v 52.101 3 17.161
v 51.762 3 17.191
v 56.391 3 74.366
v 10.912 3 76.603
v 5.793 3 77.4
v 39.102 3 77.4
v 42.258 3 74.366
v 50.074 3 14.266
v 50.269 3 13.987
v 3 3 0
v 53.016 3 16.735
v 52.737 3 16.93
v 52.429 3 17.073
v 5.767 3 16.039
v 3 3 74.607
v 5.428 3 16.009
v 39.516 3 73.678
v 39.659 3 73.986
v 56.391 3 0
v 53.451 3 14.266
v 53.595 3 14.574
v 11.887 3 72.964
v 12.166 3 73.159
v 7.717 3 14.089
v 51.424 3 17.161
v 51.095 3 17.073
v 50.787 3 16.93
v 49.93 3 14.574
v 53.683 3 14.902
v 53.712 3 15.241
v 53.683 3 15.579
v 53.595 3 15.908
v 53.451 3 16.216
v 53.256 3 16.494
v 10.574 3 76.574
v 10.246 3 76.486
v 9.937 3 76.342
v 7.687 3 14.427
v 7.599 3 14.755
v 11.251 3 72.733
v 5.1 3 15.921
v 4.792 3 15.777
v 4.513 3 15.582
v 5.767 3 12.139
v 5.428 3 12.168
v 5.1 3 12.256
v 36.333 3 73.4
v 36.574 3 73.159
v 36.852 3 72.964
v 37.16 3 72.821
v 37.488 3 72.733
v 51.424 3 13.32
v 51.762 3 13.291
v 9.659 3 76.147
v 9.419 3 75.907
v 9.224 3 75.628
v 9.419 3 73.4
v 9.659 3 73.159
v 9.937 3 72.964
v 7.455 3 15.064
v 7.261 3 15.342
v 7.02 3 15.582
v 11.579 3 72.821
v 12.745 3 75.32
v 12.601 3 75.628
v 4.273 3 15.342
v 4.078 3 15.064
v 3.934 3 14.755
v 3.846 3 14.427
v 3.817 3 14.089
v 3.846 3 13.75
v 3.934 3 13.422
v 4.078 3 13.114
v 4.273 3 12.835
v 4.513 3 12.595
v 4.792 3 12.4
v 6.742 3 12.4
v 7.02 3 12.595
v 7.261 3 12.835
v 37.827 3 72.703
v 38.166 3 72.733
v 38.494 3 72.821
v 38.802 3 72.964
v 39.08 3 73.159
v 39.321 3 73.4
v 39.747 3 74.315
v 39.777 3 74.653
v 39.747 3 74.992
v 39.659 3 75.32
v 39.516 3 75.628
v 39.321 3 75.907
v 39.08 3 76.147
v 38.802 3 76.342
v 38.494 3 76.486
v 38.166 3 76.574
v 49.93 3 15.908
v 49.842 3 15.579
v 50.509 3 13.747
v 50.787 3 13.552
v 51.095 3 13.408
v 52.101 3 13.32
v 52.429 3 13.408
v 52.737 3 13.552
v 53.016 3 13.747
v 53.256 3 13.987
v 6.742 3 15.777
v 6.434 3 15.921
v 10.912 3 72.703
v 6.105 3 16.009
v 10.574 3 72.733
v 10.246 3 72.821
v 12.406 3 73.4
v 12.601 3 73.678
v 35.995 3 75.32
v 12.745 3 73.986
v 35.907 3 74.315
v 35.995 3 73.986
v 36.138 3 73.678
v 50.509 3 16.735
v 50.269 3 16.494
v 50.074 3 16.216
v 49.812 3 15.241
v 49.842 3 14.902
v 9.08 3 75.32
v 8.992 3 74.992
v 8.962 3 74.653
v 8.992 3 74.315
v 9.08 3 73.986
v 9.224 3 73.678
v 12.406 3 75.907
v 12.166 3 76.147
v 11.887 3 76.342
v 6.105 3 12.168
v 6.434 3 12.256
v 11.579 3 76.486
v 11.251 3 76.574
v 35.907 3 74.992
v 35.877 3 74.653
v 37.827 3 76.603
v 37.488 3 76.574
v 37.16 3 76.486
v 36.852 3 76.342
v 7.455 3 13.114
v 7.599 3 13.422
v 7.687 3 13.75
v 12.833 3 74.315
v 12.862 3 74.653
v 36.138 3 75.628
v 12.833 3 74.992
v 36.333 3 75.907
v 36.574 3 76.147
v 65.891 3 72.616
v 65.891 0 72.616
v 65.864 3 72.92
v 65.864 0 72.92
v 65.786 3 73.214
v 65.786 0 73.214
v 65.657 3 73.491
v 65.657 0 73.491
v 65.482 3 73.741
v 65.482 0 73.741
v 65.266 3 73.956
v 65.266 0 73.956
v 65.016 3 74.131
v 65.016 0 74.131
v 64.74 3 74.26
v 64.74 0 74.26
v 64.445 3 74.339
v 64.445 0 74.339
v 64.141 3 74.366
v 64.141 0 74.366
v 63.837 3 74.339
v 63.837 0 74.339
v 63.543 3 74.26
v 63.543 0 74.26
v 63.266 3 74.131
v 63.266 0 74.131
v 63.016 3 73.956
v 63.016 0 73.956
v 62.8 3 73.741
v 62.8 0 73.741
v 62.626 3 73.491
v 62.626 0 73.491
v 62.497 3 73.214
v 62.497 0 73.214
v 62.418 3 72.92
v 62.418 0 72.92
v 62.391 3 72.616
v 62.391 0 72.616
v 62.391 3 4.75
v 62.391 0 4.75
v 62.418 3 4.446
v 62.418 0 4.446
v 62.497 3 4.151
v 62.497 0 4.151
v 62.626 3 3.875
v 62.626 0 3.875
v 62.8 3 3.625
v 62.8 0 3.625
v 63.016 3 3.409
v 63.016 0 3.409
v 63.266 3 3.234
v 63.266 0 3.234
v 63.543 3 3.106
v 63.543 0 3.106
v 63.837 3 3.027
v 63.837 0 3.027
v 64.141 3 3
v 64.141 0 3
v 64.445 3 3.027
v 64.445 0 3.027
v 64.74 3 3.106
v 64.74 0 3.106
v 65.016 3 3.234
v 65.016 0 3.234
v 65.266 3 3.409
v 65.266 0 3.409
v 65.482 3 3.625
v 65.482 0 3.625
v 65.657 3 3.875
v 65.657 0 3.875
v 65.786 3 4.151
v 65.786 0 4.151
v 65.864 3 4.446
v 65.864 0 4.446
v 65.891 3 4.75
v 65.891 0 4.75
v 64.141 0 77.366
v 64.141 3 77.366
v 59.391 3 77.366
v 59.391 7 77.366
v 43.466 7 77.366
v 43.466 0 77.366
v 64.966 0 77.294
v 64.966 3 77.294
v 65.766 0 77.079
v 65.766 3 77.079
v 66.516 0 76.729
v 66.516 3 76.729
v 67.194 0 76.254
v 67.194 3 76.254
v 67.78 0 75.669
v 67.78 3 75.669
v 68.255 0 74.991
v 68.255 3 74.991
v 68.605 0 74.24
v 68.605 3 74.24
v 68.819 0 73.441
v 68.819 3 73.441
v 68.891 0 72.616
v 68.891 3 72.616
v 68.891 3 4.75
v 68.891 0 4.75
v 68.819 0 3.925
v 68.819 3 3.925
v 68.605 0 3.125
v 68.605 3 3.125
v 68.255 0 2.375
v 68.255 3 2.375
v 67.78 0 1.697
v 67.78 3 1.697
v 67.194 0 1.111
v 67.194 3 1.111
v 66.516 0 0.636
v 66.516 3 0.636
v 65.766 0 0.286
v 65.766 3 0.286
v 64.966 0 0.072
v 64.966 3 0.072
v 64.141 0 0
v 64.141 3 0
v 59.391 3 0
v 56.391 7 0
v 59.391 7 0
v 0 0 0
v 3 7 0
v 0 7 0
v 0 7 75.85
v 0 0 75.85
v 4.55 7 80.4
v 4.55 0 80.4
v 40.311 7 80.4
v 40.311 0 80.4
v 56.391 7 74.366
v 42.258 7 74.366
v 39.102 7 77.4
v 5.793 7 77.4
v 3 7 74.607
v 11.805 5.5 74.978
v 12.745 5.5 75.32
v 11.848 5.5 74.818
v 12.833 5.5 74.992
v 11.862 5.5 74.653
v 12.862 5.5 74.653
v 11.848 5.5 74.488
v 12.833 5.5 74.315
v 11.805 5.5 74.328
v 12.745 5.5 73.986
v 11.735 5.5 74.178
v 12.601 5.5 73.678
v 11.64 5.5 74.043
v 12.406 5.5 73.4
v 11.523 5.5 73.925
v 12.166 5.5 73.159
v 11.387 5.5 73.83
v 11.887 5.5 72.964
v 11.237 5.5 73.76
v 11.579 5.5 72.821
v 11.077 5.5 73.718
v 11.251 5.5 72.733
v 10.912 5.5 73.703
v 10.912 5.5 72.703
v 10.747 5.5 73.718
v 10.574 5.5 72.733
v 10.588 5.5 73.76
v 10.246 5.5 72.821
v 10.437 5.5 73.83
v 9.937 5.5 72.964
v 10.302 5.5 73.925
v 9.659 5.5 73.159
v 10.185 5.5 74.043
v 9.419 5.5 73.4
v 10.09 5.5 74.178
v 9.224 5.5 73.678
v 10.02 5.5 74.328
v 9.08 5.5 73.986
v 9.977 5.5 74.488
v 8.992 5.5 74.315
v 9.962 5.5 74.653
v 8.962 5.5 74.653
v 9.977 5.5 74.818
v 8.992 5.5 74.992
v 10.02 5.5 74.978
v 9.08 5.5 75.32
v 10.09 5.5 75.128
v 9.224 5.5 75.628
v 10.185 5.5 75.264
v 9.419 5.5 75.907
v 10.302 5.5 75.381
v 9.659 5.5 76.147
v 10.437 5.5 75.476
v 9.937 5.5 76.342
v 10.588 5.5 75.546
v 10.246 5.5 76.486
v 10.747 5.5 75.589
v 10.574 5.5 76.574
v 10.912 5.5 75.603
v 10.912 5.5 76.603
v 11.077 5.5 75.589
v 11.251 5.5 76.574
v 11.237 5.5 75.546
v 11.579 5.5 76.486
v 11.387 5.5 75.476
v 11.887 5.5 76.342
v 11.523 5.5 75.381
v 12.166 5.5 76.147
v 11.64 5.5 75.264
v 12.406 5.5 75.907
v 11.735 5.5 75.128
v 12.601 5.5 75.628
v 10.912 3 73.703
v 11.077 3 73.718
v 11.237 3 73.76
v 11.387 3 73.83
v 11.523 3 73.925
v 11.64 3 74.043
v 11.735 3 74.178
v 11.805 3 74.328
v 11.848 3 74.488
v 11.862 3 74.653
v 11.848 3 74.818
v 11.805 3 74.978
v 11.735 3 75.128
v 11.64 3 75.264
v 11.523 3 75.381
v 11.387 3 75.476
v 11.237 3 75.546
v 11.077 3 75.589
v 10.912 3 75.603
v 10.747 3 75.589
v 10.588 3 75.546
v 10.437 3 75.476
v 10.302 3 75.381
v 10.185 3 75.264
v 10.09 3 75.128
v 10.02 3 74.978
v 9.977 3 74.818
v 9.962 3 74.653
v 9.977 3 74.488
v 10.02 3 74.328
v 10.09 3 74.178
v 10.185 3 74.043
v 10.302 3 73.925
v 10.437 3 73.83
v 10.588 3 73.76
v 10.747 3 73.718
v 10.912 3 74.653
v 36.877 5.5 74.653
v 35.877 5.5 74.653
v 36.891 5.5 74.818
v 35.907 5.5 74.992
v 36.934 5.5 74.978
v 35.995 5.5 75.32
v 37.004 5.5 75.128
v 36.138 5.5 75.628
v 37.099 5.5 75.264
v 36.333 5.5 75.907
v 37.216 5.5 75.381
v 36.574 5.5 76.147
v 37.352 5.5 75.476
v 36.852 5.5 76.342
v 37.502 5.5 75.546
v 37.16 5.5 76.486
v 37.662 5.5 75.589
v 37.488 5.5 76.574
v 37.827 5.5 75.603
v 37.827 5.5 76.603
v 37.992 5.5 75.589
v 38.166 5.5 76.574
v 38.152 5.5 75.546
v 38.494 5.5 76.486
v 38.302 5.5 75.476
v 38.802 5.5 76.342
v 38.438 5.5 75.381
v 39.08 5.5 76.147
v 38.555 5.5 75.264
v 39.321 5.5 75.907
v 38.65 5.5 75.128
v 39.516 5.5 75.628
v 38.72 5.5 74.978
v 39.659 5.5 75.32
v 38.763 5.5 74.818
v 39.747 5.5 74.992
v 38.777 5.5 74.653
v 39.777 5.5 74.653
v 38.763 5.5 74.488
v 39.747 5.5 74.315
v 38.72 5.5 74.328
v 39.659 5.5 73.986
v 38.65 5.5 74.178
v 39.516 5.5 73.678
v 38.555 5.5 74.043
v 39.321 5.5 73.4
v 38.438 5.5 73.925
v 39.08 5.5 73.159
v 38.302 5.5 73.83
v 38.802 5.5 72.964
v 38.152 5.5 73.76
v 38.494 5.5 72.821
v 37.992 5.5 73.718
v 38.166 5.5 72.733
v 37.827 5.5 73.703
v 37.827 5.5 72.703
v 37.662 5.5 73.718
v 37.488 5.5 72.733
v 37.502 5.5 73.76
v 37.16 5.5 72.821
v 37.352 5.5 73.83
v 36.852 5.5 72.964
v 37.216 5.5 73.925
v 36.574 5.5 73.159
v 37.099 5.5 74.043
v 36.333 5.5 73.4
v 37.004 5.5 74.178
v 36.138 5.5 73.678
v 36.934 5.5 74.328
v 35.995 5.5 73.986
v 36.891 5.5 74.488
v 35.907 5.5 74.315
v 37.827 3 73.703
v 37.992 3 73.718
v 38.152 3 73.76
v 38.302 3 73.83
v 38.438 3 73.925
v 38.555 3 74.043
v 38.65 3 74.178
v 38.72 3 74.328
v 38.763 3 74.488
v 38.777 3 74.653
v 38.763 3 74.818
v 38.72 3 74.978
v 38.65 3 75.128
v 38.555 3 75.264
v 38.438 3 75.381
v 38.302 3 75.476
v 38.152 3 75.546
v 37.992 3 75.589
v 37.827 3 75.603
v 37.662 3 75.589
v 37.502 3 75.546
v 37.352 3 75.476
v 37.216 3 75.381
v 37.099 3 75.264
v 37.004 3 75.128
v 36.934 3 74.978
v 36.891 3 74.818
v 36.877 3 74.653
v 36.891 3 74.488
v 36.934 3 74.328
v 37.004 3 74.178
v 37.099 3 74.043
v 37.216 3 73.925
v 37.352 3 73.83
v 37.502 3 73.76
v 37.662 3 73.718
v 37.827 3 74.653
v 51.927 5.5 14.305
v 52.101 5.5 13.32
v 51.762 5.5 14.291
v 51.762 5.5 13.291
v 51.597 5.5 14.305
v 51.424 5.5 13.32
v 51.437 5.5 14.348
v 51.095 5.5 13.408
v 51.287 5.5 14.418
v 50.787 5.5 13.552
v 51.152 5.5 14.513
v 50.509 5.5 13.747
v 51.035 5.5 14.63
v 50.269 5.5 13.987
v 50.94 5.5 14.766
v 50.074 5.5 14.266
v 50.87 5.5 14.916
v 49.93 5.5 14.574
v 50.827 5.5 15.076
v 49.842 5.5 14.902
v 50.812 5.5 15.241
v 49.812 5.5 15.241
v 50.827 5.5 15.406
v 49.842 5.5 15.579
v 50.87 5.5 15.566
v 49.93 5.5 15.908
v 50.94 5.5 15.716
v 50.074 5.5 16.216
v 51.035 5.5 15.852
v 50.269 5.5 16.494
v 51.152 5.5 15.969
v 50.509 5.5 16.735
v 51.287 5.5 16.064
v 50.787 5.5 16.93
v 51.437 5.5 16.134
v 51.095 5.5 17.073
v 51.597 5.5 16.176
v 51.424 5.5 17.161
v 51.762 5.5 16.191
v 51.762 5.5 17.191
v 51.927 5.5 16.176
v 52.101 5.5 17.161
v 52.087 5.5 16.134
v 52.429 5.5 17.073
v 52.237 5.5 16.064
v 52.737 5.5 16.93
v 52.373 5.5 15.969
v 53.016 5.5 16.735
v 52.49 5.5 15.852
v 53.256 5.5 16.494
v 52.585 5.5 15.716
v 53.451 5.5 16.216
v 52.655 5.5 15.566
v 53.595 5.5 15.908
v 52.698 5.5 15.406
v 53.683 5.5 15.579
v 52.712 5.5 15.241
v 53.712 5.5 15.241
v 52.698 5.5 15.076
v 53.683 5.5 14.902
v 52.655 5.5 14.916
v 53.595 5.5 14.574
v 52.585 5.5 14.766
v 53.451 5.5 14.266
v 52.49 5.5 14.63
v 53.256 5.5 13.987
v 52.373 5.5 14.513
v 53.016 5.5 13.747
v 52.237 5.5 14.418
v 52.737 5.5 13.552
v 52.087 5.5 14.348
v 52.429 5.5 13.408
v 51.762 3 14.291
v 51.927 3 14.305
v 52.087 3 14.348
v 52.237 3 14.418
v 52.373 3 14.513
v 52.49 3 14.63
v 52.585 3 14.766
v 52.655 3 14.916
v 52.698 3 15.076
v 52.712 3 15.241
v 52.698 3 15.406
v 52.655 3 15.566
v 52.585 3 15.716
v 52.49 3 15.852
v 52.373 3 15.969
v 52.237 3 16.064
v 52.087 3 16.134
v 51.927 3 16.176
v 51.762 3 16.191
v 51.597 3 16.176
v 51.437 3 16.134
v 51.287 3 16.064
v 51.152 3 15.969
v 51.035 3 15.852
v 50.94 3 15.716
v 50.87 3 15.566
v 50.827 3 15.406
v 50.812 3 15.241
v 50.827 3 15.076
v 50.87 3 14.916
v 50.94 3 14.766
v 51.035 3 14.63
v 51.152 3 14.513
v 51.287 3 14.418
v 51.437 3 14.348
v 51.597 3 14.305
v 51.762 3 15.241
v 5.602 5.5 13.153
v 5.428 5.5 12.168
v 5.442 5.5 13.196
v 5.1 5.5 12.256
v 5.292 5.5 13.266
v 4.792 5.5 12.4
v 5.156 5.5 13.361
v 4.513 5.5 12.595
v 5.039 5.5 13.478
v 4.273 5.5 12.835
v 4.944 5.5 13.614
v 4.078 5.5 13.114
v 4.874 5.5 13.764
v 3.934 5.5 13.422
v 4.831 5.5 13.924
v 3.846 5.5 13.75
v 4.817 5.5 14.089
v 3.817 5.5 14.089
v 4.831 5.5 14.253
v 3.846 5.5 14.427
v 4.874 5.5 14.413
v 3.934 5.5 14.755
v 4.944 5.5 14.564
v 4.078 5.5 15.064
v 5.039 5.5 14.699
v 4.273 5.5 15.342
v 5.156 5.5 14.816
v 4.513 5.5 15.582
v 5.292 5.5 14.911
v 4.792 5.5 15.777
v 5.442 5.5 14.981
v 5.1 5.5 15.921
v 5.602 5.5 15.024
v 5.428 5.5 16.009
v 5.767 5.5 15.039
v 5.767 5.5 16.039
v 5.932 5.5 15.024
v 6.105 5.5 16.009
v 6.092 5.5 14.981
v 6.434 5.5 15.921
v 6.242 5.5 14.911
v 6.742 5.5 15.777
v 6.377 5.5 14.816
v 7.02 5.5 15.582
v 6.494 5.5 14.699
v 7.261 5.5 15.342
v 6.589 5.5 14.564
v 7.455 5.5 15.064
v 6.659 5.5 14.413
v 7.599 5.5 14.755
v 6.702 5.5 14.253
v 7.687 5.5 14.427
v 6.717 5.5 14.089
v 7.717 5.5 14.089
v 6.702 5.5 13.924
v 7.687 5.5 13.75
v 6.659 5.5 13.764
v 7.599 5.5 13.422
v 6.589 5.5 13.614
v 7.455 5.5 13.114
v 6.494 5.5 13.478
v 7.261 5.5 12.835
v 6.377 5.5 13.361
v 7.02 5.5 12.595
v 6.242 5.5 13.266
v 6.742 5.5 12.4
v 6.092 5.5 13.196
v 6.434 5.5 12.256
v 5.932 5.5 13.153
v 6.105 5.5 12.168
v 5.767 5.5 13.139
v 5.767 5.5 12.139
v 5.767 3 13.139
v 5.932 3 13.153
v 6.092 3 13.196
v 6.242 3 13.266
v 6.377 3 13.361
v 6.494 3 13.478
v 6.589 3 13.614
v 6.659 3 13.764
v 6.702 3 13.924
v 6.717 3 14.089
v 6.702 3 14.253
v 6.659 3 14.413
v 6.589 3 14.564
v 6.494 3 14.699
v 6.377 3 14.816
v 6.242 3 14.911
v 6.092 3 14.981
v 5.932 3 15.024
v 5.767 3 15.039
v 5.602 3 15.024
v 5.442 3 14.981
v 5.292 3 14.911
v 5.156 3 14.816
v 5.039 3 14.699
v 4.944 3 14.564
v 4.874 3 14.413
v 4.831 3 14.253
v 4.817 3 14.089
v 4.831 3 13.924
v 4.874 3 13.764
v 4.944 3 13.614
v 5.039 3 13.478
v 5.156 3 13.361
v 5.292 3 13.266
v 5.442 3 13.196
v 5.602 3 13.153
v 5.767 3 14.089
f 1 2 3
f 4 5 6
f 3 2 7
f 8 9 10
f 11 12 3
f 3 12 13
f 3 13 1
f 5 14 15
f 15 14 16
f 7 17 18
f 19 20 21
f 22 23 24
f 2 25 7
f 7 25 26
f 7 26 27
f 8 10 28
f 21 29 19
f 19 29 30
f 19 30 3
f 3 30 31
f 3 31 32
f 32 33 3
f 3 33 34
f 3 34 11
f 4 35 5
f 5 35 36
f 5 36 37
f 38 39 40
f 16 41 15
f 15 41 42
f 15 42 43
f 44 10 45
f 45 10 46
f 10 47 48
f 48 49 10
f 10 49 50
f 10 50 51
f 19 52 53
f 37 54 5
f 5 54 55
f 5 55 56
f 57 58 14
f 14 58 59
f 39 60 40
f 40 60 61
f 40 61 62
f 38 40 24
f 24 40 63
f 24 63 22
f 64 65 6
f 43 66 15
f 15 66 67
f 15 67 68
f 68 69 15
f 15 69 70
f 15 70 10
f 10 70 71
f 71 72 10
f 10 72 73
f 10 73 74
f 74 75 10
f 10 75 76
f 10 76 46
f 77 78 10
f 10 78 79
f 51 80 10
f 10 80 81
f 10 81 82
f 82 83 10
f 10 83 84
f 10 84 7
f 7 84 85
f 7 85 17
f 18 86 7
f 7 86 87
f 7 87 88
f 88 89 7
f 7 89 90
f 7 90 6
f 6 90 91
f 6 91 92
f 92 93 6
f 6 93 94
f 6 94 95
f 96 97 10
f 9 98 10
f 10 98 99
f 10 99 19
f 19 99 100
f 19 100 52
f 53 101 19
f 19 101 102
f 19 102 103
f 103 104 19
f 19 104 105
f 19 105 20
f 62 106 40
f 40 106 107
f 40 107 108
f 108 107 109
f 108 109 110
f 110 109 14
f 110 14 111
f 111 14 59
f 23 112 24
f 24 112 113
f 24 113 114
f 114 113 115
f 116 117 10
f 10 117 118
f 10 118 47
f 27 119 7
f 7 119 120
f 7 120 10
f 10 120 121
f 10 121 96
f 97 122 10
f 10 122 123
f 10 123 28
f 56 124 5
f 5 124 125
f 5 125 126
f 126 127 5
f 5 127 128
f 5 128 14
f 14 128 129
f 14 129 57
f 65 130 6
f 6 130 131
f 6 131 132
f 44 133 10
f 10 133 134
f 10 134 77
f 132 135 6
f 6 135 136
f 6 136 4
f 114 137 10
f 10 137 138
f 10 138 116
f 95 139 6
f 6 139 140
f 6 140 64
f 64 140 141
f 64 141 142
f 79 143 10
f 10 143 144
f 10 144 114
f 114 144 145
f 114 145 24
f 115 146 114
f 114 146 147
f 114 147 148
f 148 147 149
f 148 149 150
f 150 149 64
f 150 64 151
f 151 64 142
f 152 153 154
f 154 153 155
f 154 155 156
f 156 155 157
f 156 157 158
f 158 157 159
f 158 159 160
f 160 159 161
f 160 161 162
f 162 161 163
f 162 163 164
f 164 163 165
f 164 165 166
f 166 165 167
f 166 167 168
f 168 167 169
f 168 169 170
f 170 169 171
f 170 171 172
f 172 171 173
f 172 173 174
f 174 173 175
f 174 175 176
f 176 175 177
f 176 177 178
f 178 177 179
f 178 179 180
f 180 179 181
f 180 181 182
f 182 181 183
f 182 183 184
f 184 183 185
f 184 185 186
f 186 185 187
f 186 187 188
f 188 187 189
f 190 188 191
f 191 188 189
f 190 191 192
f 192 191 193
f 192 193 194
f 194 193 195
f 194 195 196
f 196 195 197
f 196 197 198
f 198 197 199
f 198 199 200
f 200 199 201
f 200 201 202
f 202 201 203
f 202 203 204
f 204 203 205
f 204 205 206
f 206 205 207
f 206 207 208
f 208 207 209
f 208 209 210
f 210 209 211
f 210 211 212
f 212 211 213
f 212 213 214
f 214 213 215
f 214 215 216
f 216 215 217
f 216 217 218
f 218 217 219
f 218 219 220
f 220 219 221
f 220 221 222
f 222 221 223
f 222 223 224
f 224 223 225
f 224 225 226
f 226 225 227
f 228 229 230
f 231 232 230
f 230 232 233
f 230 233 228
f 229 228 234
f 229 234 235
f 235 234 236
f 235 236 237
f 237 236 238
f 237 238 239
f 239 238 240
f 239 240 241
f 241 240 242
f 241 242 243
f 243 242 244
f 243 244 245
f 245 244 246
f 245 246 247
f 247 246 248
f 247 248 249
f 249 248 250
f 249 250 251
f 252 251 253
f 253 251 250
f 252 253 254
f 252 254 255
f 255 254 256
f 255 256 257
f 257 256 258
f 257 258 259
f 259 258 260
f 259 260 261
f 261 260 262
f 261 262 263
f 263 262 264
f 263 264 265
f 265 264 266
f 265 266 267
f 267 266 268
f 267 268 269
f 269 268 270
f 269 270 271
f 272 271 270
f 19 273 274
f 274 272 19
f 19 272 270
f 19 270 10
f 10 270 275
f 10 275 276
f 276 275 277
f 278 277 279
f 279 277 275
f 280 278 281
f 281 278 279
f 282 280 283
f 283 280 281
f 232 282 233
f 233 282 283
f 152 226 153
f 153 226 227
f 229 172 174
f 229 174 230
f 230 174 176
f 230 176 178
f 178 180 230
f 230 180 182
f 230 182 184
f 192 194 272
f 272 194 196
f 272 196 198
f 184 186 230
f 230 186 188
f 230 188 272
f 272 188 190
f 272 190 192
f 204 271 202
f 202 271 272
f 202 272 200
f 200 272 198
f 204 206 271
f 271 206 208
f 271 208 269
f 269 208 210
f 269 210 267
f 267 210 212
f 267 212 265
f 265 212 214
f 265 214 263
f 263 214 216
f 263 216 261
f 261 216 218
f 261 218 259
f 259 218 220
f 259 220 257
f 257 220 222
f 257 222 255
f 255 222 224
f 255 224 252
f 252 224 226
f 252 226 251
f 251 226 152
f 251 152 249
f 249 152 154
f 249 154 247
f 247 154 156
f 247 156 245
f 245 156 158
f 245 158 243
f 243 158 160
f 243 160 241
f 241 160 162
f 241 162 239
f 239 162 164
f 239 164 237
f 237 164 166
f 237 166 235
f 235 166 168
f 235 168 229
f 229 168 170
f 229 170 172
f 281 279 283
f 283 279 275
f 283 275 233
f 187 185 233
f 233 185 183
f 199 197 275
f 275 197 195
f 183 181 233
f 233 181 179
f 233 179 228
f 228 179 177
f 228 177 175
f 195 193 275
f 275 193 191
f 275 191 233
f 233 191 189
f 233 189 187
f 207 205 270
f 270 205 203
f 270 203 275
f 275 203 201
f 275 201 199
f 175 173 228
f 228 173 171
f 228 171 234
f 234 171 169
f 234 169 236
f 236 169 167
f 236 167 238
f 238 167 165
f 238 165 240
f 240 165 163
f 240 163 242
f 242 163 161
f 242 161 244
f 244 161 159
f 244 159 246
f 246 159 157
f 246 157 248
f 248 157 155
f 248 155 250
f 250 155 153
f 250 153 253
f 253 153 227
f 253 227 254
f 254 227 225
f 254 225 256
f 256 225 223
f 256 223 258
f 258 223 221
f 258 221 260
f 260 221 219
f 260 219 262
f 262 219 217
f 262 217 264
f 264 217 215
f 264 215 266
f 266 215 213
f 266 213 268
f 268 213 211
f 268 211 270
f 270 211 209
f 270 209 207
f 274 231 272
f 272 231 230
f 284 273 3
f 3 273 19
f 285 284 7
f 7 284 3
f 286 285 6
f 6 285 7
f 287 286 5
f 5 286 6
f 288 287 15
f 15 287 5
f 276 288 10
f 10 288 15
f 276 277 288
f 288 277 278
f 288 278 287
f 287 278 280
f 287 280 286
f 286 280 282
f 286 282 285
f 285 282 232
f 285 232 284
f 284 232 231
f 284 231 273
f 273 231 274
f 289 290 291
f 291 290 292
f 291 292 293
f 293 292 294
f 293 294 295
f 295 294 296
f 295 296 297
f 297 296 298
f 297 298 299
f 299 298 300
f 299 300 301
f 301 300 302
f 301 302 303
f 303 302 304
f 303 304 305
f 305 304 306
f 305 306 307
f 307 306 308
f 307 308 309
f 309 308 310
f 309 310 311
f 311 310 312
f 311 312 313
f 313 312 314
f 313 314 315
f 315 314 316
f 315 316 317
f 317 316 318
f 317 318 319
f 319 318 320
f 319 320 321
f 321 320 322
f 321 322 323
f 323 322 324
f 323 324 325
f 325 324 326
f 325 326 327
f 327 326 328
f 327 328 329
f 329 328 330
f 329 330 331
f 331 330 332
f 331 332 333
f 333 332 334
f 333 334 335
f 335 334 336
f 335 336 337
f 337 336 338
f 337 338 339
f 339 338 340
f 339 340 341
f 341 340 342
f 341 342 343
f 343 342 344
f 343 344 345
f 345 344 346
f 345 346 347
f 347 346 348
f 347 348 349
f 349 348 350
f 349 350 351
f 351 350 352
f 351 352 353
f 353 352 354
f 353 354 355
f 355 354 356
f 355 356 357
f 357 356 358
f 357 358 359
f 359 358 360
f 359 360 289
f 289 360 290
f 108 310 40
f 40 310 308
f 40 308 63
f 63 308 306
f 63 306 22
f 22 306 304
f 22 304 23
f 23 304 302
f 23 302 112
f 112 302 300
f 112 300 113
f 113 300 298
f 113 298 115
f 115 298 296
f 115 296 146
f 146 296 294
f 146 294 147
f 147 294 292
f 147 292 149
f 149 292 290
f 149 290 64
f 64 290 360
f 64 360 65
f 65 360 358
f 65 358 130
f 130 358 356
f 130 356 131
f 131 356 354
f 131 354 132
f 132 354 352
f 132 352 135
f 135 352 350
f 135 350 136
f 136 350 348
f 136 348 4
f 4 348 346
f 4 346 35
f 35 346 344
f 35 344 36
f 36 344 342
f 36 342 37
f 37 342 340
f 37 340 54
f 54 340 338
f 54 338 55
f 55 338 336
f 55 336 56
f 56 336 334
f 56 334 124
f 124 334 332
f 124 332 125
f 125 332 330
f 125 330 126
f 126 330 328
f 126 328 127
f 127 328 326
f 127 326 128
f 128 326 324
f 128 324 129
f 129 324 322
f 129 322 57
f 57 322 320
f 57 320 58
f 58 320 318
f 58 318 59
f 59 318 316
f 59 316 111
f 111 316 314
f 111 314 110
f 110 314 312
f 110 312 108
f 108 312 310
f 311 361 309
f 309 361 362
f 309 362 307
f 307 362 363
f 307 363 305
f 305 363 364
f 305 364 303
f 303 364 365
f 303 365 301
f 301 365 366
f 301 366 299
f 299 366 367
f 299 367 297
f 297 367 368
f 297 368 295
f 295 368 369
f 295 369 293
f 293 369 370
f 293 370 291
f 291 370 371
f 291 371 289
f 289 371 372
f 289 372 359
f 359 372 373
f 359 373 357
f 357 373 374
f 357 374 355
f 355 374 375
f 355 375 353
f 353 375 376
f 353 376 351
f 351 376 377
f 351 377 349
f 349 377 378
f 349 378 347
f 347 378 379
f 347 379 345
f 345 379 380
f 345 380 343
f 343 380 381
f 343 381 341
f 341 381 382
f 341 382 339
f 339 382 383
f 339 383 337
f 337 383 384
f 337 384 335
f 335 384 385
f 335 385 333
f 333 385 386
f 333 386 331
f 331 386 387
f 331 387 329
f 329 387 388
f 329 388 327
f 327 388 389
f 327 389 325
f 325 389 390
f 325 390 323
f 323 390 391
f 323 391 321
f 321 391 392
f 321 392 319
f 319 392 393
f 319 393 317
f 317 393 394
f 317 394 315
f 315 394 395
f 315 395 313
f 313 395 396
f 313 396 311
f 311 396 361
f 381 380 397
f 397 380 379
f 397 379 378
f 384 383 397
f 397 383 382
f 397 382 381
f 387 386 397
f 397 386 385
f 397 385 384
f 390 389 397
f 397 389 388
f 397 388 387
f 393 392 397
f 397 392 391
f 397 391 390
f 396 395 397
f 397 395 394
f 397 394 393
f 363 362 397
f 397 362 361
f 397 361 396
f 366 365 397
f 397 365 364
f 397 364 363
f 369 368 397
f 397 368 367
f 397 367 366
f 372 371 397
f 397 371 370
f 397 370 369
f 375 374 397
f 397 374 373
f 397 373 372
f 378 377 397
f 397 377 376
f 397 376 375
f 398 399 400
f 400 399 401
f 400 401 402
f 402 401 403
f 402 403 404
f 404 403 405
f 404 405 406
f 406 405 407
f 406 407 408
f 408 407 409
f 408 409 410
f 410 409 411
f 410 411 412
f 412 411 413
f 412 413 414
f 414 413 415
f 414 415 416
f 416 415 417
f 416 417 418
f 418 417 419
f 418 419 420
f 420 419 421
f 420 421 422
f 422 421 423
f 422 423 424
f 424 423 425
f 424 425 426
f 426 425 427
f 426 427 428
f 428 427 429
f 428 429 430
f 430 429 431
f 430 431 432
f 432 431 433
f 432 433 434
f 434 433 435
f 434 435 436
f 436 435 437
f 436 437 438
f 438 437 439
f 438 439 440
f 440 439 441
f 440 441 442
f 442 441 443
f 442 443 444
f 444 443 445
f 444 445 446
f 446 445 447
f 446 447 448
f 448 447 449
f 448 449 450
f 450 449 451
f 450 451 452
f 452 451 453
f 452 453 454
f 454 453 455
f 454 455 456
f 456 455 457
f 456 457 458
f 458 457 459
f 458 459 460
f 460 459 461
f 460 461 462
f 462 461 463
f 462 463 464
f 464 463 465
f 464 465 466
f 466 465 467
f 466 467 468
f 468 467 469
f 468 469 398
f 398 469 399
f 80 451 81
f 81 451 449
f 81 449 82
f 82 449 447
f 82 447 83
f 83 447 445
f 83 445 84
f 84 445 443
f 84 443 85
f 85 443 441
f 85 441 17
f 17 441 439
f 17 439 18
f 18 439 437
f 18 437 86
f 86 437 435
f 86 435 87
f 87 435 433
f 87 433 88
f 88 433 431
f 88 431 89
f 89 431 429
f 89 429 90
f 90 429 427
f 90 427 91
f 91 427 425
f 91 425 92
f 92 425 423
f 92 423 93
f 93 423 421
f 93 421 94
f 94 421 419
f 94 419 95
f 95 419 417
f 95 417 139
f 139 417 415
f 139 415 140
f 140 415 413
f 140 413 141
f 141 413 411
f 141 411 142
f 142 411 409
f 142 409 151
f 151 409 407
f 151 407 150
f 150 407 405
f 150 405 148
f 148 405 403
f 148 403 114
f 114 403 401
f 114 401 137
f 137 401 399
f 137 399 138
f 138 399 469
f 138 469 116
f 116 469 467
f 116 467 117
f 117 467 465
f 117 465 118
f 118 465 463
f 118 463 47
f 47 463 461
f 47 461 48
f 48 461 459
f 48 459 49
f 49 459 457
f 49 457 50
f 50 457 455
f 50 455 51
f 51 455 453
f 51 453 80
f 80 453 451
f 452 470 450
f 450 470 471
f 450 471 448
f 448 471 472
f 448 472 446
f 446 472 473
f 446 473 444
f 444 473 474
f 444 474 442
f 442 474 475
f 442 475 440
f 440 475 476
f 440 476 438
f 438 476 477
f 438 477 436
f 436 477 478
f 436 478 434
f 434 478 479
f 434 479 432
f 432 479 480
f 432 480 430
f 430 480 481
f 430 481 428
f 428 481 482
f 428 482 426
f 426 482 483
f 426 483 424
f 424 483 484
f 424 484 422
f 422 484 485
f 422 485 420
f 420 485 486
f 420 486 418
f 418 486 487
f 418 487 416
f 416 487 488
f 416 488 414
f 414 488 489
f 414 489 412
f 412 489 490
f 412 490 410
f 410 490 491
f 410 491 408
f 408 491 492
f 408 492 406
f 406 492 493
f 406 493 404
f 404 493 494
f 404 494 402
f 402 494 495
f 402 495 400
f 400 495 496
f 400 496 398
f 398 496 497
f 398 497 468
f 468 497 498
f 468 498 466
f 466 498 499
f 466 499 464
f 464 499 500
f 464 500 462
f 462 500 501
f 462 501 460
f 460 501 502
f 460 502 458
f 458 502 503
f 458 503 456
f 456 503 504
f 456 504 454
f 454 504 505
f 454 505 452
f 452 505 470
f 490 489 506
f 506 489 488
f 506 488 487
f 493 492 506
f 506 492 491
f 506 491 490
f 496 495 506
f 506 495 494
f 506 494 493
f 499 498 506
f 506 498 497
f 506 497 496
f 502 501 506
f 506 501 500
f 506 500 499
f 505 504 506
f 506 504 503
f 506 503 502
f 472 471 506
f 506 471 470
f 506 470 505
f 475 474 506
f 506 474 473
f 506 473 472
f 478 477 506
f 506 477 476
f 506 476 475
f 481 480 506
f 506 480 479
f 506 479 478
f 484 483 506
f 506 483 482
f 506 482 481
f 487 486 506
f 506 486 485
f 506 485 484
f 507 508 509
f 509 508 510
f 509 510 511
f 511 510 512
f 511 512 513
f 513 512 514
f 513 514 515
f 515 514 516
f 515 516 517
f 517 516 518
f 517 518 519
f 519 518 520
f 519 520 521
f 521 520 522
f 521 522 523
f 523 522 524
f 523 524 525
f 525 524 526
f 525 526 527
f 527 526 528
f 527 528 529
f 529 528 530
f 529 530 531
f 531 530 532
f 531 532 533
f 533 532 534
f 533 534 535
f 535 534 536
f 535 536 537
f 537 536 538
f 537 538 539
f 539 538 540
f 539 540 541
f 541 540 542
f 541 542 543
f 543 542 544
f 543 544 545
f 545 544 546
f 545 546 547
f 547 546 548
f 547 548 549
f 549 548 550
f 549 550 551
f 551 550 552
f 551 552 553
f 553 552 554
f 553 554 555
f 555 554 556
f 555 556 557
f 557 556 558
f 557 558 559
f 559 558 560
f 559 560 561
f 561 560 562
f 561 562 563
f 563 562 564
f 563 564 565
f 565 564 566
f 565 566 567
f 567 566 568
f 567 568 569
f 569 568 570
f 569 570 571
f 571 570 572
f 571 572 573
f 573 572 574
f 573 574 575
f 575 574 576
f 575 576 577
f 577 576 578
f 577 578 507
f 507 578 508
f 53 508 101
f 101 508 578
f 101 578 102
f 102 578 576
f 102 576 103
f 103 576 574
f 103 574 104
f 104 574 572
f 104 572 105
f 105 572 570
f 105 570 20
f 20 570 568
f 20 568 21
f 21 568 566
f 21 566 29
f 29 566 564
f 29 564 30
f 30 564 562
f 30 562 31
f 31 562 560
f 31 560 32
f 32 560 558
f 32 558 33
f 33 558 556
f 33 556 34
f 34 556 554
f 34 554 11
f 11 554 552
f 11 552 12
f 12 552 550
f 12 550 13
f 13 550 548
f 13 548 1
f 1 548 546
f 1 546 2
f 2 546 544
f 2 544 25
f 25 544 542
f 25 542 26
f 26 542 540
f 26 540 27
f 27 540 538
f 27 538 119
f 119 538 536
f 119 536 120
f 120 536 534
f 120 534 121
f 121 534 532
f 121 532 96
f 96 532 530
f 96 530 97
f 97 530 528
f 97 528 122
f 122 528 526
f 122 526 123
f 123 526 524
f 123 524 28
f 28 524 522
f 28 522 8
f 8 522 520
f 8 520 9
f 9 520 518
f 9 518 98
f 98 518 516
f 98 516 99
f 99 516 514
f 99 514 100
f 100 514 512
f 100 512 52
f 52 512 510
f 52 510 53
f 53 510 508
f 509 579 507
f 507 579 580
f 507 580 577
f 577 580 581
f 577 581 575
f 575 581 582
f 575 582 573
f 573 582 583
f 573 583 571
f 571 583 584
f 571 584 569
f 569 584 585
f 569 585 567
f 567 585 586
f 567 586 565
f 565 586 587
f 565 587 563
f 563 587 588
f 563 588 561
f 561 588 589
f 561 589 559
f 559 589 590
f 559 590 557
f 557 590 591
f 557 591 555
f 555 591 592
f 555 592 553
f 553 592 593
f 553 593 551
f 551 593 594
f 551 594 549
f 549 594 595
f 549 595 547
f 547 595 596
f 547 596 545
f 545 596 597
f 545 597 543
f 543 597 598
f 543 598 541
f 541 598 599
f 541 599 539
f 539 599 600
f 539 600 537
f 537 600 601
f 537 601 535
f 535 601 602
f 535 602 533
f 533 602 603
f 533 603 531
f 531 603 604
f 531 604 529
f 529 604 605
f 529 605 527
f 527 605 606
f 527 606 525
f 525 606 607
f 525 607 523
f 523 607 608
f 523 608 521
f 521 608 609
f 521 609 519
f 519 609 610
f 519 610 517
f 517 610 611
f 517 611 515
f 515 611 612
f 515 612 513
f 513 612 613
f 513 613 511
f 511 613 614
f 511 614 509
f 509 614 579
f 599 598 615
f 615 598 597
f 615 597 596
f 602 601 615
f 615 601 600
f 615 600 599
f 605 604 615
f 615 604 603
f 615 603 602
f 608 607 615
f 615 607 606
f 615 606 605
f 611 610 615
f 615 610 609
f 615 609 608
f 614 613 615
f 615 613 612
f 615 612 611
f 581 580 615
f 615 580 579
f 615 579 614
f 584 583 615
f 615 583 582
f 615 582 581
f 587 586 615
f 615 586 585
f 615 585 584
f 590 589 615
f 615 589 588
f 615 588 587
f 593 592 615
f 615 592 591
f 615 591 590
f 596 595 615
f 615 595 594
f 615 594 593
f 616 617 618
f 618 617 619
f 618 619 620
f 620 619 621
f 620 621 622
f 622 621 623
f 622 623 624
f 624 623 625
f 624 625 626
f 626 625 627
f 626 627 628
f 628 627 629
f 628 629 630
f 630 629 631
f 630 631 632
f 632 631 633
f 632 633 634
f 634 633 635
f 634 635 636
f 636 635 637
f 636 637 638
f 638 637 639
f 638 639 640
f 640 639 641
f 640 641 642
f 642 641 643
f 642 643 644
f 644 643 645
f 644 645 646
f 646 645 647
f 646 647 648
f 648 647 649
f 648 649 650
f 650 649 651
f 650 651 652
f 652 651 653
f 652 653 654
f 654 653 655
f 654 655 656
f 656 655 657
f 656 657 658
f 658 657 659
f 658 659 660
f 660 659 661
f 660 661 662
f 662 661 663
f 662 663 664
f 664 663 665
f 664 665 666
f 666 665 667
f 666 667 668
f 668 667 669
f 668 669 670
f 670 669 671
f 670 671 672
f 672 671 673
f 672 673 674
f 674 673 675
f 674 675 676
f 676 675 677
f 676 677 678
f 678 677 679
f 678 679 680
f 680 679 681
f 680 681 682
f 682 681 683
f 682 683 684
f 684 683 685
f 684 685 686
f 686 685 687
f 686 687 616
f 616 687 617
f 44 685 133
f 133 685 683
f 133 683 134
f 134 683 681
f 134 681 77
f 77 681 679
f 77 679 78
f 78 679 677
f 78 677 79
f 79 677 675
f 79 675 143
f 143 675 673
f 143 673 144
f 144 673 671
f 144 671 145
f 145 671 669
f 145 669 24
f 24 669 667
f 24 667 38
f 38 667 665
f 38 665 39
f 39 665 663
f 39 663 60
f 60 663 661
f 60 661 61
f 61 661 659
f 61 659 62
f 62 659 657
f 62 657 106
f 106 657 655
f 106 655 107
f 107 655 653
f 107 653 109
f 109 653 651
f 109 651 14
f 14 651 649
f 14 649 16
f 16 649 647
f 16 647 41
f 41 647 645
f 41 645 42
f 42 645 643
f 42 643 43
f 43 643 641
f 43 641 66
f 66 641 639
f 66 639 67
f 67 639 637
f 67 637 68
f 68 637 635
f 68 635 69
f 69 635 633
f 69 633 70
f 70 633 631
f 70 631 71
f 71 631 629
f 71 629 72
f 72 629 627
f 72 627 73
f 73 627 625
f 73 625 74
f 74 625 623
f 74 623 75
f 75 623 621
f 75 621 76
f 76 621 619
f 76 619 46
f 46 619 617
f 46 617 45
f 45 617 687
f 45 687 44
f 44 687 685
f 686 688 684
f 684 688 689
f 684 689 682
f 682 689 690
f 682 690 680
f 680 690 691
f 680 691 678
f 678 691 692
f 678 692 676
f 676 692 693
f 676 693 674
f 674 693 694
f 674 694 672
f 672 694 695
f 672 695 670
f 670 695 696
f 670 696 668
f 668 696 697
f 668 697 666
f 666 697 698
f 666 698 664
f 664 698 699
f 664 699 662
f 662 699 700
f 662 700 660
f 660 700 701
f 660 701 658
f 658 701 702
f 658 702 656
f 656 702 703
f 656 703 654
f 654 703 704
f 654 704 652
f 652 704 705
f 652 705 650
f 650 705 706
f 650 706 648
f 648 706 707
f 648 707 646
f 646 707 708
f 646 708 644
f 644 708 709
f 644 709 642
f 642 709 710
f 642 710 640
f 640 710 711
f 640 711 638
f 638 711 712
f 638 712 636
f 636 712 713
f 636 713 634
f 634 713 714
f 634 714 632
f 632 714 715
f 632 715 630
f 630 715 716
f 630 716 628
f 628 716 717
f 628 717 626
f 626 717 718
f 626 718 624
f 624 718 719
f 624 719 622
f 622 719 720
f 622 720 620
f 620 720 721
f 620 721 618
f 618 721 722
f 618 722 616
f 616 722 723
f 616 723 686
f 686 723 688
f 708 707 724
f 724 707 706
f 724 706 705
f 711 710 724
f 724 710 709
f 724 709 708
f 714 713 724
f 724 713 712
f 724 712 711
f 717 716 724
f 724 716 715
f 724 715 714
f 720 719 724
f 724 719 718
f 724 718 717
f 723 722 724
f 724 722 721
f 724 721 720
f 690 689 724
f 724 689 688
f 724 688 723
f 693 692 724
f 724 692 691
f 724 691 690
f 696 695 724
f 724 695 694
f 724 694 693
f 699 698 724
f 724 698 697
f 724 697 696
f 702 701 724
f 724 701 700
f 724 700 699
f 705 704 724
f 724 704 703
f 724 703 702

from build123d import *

# Parameters (mm, degrees)
CROQUIS2_R              = 0.95
SALIENTE_EXTRUIR1_DEPTH = 3
SALIENTE_EXTRUIR2_DEPTH = 4
CROQUIS5_R              = 1.95
CROQUIS5_R_2            = 0.95
SALIENTE_EXTRUIR3_DEPTH = 2.5


with BuildPart() as part:
    # Croquis2 → Saliente-Extruir1 (new body)
    # profile 1 of 9: a face of its own
    with BuildSketch(Plane(origin=(0, 0, 0), x_dir=(1, 0, 0), z_dir=(0, 1, 0))):
        Polygon((42.257715083, -74.365742034), (56.391047804, -74.365742034), (56.391047804, 0), (3, 0), (3, -74.607271369), (5.792893219, -77.400164587), (39.10235492, -77.400164587), align=None)
        with Locations((5.766718429, -14.088511522)):
            Circle(CROQUIS2_R, mode=Mode.SUBTRACT)
        with Locations((51.762416691, -15.240864439)):
            Circle(CROQUIS2_R, mode=Mode.SUBTRACT)
        with Locations((10.912444351, -74.653169117)):
            Circle(CROQUIS2_R, mode=Mode.SUBTRACT)
        with Locations((37.82696283, -74.653169117)):
            Circle(CROQUIS2_R, mode=Mode.SUBTRACT)
    # profile 2 of 9: a face of its own
    with BuildSketch(Plane(origin=(0, 0, 0), x_dir=(1, 0, 0), z_dir=(0, 1, 0))):
        Polygon((3, 0), (0, 0), (0, -75.849912056), (4.550252532, -80.400164587), (40.310801486, -80.400164587), (43.466161649, -77.365742034), (59.391047804, -77.365742034), (59.391047804, -72.615742034), (59.391047804, -4.75), (59.391047804, 0), (56.391047804, 0), (56.391047804, -74.365742034), (42.257715083, -74.365742034), (39.10235492, -77.400164587), (5.792893219, -77.400164587), (3, -74.607271369), align=None)
    # profile 3 of 9: a face of its own
    with BuildSketch(Plane(origin=(0, 0, 0), x_dir=(1, 0, 0), z_dir=(0, 1, 0))):
        with Locations((5.766718429, -14.088511522)):
            Circle(CROQUIS2_R)
    # profile 4 of 9: a face of its own
    with BuildSketch(Plane(origin=(0, 0, 0), x_dir=(1, 0, 0), z_dir=(0, 1, 0))):
        with Locations((37.82696283, -74.653169117)):
            Circle(CROQUIS2_R)
    # profile 5 of 9: a face of its own
    with BuildSketch(Plane(origin=(0, 0, 0), x_dir=(1, 0, 0), z_dir=(0, 1, 0))):
        with BuildLine():
            ThreePointArc((64.141047804, 0), (60.782290593, -1.391242789), (59.391047804, -4.75))
            Line((59.391047804, -4.75), (59.391047804, -72.615742034))
            ThreePointArc((59.391047804, -72.615742034), (60.782290593, -75.974499245), (64.141047804, -77.365742034))
            ThreePointArc((64.141047804, -77.365742034), (67.499805014, -75.974499245), (68.891047804, -72.615742034))
            Line((68.891047804, -72.615742034), (68.891047804, -4.75))
            ThreePointArc((68.891047804, -4.75), (67.499805014, -1.391242789), (64.141047804, 0))
        make_face()
        with BuildLine():
            ThreePointArc((62.391047804, -4.75), (64.141047804, -3), (65.891047804, -4.75))
            Line((65.891047804, -4.75), (65.891047804, -72.615742034))
            ThreePointArc((65.891047804, -72.615742034), (64.141047804, -74.365742034), (62.391047804, -72.615742034))
            Line((62.391047804, -72.615742034), (62.391047804, -4.75))
        make_face(mode=Mode.SUBTRACT)
    # profile 6 of 9: a face of its own
    with BuildSketch(Plane(origin=(0, 0, 0), x_dir=(1, 0, 0), z_dir=(0, 1, 0))):
        with Locations((51.762416691, -15.240864439)):
            Circle(CROQUIS2_R)
    # profile 7 of 9: a face of its own
    with BuildSketch(Plane(origin=(0, 0, 0), x_dir=(1, 0, 0), z_dir=(0, 1, 0))):
        with Locations((10.912444351, -74.653169117)):
            Circle(CROQUIS2_R)
    # profile 8 of 9: a face of its own
    with BuildSketch(Plane(origin=(0, 0, 0), x_dir=(1, 0, 0), z_dir=(0, 1, 0))):
        with BuildLine():
            Line((59.391047804, -72.615742034), (59.391047804, -77.365742034))
            Line((59.391047804, -77.365742034), (64.141047804, -77.365742034))
            ThreePointArc((64.141047804, -77.365742034), (60.782290593, -75.974499245), (59.391047804, -72.615742034))
        make_face()
    # profile 9 of 9: a face of its own
    with BuildSketch(Plane(origin=(0, 0, 0), x_dir=(1, 0, 0), z_dir=(0, 1, 0))):
        with BuildLine():
            Line((64.141047804, 0), (59.391047804, 0))
            Line((59.391047804, 0), (59.391047804, -4.75))
            ThreePointArc((59.391047804, -4.75), (60.782290593, -1.391242789), (64.141047804, 0))
        make_face()
    extrude(amount=SALIENTE_EXTRUIR1_DEPTH)

    # Croquis4 → Saliente-Extruir2 (add)
    with BuildSketch(Plane(origin=(0, 3, 0), x_dir=(1, 0, 0), z_dir=(0, 1, 0))):
        Polygon((0, 0), (0, -75.849912056), (4.550252532, -80.400164587), (40.310801486, -80.400164587), (43.466161649, -77.365742034), (59.391047804, -77.365742034), (59.391047804, 0), (56.391047804, 0), (56.391047804, -74.365742034), (42.257715083, -74.365742034), (39.10235492, -77.400164587), (5.792893219, -77.400164587), (3, -74.607271369), (3, 0), align=None)
    extrude(amount=SALIENTE_EXTRUIR2_DEPTH)

    # Croquis5 → Saliente-Extruir3 (add)
    # profile 1 of 4: a face of its own
    with BuildSketch(Plane(origin=(0, 3, 0), x_dir=(1, 0, 0), z_dir=(0, 1, 0))):
        with Locations(Location((5.766718429, -14.088511522, 0), (0, 0, 270))):
            Circle(CROQUIS5_R)
        with Locations(Location((5.766718429, -14.088511522, 0), (0, 0, 270))):
            Circle(CROQUIS5_R_2, mode=Mode.SUBTRACT)
    # profile 2 of 4: a face of its own
    with BuildSketch(Plane(origin=(0, 3, 0), x_dir=(1, 0, 0), z_dir=(0, 1, 0))):
        with Locations(Location((51.762416691, -15.240864439, 0), (0, 0, 270))):
            Circle(CROQUIS5_R)
        with Locations(Location((51.762416691, -15.240864439, 0), (0, 0, 270))):
            Circle(CROQUIS5_R_2, mode=Mode.SUBTRACT)
    # profile 3 of 4: a face of its own
    with BuildSketch(Plane(origin=(0, 3, 0), x_dir=(1, 0, 0), z_dir=(0, 1, 0))):
        with Locations(Location((37.82696283, -74.653169117, 0), (0, 0, 270))):
            Circle(CROQUIS5_R)
        with Locations(Location((37.82696283, -74.653169117, 0), (0, 0, 270))):
            Circle(CROQUIS5_R_2, mode=Mode.SUBTRACT)
    # profile 4 of 4: a face of its own
    with BuildSketch(Plane(origin=(0, 3, 0), x_dir=(1, 0, 0), z_dir=(0, 1, 0))):
        with Locations(Location((10.912444351, -74.653169117, 0), (0, 0, 270))):
            Circle(CROQUIS5_R)
        with Locations(Location((10.912444351, -74.653169117, 0), (0, 0, 270))):
            Circle(CROQUIS5_R_2, mode=Mode.SUBTRACT)
    extrude(amount=SALIENTE_EXTRUIR3_DEPTH)


solid = part.part
